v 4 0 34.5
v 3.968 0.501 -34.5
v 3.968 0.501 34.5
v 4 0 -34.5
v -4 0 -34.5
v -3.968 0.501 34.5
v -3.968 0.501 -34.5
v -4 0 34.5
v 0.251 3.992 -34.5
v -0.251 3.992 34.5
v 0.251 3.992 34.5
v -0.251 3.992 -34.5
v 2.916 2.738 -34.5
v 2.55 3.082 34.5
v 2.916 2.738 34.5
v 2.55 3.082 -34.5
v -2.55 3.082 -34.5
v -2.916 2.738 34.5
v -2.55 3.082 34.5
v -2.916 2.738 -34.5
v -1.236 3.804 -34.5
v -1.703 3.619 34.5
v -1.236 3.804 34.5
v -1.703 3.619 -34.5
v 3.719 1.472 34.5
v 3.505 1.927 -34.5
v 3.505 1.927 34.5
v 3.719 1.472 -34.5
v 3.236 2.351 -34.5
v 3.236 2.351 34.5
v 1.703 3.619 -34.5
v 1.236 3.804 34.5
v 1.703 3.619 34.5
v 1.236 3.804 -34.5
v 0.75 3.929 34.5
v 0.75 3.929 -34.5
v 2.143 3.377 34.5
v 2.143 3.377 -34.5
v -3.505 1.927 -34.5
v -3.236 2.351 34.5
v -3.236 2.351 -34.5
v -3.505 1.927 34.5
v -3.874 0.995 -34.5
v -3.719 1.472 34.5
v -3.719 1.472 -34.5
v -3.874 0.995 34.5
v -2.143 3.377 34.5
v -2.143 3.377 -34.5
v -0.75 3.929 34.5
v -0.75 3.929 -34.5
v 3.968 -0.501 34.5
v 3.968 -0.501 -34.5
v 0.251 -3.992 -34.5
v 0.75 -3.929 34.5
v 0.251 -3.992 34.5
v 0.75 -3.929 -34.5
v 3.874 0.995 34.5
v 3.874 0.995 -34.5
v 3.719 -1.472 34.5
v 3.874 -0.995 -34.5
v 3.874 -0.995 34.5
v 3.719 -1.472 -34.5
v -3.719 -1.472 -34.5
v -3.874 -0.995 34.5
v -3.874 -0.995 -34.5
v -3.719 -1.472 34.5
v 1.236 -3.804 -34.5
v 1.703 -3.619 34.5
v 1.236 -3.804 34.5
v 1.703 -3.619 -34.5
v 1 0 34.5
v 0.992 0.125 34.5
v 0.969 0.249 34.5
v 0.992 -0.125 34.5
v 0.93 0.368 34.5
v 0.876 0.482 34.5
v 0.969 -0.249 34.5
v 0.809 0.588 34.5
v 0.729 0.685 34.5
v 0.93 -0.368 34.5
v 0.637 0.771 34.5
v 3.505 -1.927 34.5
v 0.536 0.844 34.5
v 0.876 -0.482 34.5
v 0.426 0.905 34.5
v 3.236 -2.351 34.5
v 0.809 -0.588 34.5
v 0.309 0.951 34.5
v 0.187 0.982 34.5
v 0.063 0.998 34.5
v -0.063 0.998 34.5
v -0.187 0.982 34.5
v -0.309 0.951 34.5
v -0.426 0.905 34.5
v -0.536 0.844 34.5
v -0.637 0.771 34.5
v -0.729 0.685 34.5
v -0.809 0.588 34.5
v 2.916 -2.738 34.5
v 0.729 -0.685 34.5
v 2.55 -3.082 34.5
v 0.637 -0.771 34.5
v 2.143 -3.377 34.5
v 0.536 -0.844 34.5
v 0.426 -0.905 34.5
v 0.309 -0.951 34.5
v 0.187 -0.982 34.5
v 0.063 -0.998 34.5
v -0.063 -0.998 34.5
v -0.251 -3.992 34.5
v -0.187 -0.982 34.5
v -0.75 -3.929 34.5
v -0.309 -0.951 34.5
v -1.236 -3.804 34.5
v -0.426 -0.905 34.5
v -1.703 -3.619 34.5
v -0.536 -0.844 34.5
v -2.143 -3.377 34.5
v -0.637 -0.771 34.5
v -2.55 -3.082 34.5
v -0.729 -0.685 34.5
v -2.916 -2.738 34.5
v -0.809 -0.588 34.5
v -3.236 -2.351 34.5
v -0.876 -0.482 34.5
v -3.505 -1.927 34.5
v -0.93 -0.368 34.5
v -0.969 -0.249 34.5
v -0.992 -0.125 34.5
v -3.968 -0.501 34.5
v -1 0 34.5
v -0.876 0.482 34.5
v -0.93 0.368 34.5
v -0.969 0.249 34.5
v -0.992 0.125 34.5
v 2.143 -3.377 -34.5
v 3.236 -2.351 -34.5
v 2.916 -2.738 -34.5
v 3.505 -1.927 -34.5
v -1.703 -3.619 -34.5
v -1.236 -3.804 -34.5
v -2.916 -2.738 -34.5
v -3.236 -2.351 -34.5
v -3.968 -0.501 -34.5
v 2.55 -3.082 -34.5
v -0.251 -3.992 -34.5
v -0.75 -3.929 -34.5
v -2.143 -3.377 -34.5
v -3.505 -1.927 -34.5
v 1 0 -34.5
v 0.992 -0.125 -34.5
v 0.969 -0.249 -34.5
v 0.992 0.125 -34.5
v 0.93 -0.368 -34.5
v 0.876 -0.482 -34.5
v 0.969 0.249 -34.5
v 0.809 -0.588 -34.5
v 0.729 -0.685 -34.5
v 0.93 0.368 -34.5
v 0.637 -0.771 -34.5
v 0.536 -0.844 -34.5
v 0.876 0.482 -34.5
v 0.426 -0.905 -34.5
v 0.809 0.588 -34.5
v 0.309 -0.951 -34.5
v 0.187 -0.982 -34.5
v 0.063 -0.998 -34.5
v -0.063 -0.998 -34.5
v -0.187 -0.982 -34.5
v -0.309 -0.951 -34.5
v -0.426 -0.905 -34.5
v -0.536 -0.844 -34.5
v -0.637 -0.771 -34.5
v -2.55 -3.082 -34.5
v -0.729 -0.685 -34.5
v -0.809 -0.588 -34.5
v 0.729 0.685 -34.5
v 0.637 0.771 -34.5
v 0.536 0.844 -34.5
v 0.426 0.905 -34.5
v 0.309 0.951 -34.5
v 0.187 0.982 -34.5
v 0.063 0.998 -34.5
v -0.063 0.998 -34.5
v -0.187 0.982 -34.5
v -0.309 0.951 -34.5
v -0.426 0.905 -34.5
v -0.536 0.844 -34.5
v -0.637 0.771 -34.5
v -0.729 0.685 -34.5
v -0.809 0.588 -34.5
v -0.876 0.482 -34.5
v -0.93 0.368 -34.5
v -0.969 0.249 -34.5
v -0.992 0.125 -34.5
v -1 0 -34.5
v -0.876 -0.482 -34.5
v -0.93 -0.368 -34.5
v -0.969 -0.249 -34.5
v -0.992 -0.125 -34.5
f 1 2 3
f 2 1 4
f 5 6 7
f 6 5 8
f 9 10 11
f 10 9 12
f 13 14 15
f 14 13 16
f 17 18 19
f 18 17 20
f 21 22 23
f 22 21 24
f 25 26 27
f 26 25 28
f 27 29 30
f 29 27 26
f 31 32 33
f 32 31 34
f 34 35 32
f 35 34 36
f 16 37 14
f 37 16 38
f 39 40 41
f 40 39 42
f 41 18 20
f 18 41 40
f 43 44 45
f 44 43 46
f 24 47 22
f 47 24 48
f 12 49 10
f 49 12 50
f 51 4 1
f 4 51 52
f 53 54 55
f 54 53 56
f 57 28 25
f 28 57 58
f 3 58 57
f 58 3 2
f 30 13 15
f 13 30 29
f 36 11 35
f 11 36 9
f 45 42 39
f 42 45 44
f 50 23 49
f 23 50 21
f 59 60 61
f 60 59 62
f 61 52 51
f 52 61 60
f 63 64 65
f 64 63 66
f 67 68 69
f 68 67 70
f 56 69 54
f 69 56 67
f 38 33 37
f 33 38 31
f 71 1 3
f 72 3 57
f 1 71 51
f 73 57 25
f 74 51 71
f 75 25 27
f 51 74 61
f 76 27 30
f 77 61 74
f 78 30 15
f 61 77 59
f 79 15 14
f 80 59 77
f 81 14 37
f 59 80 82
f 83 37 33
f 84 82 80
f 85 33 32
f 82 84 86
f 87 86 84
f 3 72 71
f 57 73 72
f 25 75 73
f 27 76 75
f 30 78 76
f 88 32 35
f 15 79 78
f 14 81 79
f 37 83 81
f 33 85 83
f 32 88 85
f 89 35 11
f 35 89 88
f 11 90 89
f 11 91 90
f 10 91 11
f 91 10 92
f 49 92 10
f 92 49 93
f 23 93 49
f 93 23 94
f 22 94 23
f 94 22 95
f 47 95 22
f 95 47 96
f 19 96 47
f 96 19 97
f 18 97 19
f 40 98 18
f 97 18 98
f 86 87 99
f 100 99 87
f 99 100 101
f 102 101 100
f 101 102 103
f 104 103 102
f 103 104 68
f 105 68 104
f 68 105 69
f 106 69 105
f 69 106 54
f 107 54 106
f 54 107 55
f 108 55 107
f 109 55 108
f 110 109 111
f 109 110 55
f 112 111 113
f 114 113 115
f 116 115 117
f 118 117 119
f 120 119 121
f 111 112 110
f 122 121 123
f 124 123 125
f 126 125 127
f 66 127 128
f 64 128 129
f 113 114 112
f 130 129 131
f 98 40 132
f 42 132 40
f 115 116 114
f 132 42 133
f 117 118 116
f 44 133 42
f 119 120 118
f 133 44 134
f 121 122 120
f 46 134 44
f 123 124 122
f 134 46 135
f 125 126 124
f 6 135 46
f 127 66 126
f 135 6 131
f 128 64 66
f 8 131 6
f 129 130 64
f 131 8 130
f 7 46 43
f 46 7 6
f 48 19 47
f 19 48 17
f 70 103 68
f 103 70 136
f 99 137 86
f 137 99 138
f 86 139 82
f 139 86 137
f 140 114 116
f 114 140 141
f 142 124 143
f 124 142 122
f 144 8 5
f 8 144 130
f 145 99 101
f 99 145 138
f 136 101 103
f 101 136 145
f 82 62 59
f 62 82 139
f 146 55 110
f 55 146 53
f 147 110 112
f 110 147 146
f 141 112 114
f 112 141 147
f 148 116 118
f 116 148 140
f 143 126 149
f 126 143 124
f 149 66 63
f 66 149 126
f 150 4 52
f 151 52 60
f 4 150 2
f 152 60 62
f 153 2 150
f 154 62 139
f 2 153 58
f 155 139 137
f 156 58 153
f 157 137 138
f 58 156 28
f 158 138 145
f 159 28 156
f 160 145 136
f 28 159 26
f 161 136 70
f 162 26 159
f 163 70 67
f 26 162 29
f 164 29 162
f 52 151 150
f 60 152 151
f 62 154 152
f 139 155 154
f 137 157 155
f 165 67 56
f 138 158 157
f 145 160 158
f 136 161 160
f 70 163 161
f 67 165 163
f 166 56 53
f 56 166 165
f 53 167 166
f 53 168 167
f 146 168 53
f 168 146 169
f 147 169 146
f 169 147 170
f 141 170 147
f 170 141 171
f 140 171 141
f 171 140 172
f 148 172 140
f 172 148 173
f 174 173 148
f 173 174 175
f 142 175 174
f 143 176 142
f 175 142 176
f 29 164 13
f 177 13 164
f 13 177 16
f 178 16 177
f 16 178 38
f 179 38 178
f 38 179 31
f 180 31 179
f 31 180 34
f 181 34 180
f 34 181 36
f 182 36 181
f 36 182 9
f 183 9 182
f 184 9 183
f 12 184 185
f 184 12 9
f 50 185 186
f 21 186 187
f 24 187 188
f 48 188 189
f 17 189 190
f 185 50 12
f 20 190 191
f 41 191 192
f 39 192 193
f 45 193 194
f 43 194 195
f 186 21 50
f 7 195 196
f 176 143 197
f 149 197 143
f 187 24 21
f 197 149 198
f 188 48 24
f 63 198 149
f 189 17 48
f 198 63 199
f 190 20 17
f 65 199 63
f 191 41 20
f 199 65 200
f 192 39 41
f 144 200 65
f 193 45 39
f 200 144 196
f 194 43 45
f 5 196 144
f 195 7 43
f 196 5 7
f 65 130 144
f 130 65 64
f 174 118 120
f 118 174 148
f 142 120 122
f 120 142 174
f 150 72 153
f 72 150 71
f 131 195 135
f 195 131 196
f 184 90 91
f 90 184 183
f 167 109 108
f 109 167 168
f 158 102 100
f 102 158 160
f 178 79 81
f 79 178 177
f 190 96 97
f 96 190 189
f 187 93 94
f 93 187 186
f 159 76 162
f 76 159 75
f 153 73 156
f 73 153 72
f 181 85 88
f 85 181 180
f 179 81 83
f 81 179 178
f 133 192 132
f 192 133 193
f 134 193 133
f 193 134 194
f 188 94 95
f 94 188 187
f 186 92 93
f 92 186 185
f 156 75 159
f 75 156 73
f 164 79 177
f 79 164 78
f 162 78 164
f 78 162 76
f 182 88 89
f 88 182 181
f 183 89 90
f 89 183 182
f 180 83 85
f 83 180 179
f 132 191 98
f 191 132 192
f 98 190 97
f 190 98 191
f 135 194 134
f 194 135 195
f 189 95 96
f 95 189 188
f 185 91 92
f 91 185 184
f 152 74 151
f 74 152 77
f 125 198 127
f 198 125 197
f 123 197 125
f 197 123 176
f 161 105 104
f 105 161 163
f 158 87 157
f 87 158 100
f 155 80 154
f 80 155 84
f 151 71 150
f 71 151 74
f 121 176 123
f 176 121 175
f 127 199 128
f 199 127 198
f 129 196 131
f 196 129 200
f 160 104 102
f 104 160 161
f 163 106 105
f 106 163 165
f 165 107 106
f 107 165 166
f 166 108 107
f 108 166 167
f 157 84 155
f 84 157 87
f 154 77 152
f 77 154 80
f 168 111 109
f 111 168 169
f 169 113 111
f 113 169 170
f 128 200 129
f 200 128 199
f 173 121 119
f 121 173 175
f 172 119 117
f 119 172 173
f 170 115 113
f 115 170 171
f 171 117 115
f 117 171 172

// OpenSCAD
$fn = 50;


difference() {
	union() {
		translate(v = [0, 0, -34.5000000000]) {
			cylinder(h = 69, r = 4.0000000000);
		}
	}
	union() {
		translate(v = [0, 0, -100.0000000000]) {
			cylinder(h = 200, r = 1.0000000000);
		}
	}
}
